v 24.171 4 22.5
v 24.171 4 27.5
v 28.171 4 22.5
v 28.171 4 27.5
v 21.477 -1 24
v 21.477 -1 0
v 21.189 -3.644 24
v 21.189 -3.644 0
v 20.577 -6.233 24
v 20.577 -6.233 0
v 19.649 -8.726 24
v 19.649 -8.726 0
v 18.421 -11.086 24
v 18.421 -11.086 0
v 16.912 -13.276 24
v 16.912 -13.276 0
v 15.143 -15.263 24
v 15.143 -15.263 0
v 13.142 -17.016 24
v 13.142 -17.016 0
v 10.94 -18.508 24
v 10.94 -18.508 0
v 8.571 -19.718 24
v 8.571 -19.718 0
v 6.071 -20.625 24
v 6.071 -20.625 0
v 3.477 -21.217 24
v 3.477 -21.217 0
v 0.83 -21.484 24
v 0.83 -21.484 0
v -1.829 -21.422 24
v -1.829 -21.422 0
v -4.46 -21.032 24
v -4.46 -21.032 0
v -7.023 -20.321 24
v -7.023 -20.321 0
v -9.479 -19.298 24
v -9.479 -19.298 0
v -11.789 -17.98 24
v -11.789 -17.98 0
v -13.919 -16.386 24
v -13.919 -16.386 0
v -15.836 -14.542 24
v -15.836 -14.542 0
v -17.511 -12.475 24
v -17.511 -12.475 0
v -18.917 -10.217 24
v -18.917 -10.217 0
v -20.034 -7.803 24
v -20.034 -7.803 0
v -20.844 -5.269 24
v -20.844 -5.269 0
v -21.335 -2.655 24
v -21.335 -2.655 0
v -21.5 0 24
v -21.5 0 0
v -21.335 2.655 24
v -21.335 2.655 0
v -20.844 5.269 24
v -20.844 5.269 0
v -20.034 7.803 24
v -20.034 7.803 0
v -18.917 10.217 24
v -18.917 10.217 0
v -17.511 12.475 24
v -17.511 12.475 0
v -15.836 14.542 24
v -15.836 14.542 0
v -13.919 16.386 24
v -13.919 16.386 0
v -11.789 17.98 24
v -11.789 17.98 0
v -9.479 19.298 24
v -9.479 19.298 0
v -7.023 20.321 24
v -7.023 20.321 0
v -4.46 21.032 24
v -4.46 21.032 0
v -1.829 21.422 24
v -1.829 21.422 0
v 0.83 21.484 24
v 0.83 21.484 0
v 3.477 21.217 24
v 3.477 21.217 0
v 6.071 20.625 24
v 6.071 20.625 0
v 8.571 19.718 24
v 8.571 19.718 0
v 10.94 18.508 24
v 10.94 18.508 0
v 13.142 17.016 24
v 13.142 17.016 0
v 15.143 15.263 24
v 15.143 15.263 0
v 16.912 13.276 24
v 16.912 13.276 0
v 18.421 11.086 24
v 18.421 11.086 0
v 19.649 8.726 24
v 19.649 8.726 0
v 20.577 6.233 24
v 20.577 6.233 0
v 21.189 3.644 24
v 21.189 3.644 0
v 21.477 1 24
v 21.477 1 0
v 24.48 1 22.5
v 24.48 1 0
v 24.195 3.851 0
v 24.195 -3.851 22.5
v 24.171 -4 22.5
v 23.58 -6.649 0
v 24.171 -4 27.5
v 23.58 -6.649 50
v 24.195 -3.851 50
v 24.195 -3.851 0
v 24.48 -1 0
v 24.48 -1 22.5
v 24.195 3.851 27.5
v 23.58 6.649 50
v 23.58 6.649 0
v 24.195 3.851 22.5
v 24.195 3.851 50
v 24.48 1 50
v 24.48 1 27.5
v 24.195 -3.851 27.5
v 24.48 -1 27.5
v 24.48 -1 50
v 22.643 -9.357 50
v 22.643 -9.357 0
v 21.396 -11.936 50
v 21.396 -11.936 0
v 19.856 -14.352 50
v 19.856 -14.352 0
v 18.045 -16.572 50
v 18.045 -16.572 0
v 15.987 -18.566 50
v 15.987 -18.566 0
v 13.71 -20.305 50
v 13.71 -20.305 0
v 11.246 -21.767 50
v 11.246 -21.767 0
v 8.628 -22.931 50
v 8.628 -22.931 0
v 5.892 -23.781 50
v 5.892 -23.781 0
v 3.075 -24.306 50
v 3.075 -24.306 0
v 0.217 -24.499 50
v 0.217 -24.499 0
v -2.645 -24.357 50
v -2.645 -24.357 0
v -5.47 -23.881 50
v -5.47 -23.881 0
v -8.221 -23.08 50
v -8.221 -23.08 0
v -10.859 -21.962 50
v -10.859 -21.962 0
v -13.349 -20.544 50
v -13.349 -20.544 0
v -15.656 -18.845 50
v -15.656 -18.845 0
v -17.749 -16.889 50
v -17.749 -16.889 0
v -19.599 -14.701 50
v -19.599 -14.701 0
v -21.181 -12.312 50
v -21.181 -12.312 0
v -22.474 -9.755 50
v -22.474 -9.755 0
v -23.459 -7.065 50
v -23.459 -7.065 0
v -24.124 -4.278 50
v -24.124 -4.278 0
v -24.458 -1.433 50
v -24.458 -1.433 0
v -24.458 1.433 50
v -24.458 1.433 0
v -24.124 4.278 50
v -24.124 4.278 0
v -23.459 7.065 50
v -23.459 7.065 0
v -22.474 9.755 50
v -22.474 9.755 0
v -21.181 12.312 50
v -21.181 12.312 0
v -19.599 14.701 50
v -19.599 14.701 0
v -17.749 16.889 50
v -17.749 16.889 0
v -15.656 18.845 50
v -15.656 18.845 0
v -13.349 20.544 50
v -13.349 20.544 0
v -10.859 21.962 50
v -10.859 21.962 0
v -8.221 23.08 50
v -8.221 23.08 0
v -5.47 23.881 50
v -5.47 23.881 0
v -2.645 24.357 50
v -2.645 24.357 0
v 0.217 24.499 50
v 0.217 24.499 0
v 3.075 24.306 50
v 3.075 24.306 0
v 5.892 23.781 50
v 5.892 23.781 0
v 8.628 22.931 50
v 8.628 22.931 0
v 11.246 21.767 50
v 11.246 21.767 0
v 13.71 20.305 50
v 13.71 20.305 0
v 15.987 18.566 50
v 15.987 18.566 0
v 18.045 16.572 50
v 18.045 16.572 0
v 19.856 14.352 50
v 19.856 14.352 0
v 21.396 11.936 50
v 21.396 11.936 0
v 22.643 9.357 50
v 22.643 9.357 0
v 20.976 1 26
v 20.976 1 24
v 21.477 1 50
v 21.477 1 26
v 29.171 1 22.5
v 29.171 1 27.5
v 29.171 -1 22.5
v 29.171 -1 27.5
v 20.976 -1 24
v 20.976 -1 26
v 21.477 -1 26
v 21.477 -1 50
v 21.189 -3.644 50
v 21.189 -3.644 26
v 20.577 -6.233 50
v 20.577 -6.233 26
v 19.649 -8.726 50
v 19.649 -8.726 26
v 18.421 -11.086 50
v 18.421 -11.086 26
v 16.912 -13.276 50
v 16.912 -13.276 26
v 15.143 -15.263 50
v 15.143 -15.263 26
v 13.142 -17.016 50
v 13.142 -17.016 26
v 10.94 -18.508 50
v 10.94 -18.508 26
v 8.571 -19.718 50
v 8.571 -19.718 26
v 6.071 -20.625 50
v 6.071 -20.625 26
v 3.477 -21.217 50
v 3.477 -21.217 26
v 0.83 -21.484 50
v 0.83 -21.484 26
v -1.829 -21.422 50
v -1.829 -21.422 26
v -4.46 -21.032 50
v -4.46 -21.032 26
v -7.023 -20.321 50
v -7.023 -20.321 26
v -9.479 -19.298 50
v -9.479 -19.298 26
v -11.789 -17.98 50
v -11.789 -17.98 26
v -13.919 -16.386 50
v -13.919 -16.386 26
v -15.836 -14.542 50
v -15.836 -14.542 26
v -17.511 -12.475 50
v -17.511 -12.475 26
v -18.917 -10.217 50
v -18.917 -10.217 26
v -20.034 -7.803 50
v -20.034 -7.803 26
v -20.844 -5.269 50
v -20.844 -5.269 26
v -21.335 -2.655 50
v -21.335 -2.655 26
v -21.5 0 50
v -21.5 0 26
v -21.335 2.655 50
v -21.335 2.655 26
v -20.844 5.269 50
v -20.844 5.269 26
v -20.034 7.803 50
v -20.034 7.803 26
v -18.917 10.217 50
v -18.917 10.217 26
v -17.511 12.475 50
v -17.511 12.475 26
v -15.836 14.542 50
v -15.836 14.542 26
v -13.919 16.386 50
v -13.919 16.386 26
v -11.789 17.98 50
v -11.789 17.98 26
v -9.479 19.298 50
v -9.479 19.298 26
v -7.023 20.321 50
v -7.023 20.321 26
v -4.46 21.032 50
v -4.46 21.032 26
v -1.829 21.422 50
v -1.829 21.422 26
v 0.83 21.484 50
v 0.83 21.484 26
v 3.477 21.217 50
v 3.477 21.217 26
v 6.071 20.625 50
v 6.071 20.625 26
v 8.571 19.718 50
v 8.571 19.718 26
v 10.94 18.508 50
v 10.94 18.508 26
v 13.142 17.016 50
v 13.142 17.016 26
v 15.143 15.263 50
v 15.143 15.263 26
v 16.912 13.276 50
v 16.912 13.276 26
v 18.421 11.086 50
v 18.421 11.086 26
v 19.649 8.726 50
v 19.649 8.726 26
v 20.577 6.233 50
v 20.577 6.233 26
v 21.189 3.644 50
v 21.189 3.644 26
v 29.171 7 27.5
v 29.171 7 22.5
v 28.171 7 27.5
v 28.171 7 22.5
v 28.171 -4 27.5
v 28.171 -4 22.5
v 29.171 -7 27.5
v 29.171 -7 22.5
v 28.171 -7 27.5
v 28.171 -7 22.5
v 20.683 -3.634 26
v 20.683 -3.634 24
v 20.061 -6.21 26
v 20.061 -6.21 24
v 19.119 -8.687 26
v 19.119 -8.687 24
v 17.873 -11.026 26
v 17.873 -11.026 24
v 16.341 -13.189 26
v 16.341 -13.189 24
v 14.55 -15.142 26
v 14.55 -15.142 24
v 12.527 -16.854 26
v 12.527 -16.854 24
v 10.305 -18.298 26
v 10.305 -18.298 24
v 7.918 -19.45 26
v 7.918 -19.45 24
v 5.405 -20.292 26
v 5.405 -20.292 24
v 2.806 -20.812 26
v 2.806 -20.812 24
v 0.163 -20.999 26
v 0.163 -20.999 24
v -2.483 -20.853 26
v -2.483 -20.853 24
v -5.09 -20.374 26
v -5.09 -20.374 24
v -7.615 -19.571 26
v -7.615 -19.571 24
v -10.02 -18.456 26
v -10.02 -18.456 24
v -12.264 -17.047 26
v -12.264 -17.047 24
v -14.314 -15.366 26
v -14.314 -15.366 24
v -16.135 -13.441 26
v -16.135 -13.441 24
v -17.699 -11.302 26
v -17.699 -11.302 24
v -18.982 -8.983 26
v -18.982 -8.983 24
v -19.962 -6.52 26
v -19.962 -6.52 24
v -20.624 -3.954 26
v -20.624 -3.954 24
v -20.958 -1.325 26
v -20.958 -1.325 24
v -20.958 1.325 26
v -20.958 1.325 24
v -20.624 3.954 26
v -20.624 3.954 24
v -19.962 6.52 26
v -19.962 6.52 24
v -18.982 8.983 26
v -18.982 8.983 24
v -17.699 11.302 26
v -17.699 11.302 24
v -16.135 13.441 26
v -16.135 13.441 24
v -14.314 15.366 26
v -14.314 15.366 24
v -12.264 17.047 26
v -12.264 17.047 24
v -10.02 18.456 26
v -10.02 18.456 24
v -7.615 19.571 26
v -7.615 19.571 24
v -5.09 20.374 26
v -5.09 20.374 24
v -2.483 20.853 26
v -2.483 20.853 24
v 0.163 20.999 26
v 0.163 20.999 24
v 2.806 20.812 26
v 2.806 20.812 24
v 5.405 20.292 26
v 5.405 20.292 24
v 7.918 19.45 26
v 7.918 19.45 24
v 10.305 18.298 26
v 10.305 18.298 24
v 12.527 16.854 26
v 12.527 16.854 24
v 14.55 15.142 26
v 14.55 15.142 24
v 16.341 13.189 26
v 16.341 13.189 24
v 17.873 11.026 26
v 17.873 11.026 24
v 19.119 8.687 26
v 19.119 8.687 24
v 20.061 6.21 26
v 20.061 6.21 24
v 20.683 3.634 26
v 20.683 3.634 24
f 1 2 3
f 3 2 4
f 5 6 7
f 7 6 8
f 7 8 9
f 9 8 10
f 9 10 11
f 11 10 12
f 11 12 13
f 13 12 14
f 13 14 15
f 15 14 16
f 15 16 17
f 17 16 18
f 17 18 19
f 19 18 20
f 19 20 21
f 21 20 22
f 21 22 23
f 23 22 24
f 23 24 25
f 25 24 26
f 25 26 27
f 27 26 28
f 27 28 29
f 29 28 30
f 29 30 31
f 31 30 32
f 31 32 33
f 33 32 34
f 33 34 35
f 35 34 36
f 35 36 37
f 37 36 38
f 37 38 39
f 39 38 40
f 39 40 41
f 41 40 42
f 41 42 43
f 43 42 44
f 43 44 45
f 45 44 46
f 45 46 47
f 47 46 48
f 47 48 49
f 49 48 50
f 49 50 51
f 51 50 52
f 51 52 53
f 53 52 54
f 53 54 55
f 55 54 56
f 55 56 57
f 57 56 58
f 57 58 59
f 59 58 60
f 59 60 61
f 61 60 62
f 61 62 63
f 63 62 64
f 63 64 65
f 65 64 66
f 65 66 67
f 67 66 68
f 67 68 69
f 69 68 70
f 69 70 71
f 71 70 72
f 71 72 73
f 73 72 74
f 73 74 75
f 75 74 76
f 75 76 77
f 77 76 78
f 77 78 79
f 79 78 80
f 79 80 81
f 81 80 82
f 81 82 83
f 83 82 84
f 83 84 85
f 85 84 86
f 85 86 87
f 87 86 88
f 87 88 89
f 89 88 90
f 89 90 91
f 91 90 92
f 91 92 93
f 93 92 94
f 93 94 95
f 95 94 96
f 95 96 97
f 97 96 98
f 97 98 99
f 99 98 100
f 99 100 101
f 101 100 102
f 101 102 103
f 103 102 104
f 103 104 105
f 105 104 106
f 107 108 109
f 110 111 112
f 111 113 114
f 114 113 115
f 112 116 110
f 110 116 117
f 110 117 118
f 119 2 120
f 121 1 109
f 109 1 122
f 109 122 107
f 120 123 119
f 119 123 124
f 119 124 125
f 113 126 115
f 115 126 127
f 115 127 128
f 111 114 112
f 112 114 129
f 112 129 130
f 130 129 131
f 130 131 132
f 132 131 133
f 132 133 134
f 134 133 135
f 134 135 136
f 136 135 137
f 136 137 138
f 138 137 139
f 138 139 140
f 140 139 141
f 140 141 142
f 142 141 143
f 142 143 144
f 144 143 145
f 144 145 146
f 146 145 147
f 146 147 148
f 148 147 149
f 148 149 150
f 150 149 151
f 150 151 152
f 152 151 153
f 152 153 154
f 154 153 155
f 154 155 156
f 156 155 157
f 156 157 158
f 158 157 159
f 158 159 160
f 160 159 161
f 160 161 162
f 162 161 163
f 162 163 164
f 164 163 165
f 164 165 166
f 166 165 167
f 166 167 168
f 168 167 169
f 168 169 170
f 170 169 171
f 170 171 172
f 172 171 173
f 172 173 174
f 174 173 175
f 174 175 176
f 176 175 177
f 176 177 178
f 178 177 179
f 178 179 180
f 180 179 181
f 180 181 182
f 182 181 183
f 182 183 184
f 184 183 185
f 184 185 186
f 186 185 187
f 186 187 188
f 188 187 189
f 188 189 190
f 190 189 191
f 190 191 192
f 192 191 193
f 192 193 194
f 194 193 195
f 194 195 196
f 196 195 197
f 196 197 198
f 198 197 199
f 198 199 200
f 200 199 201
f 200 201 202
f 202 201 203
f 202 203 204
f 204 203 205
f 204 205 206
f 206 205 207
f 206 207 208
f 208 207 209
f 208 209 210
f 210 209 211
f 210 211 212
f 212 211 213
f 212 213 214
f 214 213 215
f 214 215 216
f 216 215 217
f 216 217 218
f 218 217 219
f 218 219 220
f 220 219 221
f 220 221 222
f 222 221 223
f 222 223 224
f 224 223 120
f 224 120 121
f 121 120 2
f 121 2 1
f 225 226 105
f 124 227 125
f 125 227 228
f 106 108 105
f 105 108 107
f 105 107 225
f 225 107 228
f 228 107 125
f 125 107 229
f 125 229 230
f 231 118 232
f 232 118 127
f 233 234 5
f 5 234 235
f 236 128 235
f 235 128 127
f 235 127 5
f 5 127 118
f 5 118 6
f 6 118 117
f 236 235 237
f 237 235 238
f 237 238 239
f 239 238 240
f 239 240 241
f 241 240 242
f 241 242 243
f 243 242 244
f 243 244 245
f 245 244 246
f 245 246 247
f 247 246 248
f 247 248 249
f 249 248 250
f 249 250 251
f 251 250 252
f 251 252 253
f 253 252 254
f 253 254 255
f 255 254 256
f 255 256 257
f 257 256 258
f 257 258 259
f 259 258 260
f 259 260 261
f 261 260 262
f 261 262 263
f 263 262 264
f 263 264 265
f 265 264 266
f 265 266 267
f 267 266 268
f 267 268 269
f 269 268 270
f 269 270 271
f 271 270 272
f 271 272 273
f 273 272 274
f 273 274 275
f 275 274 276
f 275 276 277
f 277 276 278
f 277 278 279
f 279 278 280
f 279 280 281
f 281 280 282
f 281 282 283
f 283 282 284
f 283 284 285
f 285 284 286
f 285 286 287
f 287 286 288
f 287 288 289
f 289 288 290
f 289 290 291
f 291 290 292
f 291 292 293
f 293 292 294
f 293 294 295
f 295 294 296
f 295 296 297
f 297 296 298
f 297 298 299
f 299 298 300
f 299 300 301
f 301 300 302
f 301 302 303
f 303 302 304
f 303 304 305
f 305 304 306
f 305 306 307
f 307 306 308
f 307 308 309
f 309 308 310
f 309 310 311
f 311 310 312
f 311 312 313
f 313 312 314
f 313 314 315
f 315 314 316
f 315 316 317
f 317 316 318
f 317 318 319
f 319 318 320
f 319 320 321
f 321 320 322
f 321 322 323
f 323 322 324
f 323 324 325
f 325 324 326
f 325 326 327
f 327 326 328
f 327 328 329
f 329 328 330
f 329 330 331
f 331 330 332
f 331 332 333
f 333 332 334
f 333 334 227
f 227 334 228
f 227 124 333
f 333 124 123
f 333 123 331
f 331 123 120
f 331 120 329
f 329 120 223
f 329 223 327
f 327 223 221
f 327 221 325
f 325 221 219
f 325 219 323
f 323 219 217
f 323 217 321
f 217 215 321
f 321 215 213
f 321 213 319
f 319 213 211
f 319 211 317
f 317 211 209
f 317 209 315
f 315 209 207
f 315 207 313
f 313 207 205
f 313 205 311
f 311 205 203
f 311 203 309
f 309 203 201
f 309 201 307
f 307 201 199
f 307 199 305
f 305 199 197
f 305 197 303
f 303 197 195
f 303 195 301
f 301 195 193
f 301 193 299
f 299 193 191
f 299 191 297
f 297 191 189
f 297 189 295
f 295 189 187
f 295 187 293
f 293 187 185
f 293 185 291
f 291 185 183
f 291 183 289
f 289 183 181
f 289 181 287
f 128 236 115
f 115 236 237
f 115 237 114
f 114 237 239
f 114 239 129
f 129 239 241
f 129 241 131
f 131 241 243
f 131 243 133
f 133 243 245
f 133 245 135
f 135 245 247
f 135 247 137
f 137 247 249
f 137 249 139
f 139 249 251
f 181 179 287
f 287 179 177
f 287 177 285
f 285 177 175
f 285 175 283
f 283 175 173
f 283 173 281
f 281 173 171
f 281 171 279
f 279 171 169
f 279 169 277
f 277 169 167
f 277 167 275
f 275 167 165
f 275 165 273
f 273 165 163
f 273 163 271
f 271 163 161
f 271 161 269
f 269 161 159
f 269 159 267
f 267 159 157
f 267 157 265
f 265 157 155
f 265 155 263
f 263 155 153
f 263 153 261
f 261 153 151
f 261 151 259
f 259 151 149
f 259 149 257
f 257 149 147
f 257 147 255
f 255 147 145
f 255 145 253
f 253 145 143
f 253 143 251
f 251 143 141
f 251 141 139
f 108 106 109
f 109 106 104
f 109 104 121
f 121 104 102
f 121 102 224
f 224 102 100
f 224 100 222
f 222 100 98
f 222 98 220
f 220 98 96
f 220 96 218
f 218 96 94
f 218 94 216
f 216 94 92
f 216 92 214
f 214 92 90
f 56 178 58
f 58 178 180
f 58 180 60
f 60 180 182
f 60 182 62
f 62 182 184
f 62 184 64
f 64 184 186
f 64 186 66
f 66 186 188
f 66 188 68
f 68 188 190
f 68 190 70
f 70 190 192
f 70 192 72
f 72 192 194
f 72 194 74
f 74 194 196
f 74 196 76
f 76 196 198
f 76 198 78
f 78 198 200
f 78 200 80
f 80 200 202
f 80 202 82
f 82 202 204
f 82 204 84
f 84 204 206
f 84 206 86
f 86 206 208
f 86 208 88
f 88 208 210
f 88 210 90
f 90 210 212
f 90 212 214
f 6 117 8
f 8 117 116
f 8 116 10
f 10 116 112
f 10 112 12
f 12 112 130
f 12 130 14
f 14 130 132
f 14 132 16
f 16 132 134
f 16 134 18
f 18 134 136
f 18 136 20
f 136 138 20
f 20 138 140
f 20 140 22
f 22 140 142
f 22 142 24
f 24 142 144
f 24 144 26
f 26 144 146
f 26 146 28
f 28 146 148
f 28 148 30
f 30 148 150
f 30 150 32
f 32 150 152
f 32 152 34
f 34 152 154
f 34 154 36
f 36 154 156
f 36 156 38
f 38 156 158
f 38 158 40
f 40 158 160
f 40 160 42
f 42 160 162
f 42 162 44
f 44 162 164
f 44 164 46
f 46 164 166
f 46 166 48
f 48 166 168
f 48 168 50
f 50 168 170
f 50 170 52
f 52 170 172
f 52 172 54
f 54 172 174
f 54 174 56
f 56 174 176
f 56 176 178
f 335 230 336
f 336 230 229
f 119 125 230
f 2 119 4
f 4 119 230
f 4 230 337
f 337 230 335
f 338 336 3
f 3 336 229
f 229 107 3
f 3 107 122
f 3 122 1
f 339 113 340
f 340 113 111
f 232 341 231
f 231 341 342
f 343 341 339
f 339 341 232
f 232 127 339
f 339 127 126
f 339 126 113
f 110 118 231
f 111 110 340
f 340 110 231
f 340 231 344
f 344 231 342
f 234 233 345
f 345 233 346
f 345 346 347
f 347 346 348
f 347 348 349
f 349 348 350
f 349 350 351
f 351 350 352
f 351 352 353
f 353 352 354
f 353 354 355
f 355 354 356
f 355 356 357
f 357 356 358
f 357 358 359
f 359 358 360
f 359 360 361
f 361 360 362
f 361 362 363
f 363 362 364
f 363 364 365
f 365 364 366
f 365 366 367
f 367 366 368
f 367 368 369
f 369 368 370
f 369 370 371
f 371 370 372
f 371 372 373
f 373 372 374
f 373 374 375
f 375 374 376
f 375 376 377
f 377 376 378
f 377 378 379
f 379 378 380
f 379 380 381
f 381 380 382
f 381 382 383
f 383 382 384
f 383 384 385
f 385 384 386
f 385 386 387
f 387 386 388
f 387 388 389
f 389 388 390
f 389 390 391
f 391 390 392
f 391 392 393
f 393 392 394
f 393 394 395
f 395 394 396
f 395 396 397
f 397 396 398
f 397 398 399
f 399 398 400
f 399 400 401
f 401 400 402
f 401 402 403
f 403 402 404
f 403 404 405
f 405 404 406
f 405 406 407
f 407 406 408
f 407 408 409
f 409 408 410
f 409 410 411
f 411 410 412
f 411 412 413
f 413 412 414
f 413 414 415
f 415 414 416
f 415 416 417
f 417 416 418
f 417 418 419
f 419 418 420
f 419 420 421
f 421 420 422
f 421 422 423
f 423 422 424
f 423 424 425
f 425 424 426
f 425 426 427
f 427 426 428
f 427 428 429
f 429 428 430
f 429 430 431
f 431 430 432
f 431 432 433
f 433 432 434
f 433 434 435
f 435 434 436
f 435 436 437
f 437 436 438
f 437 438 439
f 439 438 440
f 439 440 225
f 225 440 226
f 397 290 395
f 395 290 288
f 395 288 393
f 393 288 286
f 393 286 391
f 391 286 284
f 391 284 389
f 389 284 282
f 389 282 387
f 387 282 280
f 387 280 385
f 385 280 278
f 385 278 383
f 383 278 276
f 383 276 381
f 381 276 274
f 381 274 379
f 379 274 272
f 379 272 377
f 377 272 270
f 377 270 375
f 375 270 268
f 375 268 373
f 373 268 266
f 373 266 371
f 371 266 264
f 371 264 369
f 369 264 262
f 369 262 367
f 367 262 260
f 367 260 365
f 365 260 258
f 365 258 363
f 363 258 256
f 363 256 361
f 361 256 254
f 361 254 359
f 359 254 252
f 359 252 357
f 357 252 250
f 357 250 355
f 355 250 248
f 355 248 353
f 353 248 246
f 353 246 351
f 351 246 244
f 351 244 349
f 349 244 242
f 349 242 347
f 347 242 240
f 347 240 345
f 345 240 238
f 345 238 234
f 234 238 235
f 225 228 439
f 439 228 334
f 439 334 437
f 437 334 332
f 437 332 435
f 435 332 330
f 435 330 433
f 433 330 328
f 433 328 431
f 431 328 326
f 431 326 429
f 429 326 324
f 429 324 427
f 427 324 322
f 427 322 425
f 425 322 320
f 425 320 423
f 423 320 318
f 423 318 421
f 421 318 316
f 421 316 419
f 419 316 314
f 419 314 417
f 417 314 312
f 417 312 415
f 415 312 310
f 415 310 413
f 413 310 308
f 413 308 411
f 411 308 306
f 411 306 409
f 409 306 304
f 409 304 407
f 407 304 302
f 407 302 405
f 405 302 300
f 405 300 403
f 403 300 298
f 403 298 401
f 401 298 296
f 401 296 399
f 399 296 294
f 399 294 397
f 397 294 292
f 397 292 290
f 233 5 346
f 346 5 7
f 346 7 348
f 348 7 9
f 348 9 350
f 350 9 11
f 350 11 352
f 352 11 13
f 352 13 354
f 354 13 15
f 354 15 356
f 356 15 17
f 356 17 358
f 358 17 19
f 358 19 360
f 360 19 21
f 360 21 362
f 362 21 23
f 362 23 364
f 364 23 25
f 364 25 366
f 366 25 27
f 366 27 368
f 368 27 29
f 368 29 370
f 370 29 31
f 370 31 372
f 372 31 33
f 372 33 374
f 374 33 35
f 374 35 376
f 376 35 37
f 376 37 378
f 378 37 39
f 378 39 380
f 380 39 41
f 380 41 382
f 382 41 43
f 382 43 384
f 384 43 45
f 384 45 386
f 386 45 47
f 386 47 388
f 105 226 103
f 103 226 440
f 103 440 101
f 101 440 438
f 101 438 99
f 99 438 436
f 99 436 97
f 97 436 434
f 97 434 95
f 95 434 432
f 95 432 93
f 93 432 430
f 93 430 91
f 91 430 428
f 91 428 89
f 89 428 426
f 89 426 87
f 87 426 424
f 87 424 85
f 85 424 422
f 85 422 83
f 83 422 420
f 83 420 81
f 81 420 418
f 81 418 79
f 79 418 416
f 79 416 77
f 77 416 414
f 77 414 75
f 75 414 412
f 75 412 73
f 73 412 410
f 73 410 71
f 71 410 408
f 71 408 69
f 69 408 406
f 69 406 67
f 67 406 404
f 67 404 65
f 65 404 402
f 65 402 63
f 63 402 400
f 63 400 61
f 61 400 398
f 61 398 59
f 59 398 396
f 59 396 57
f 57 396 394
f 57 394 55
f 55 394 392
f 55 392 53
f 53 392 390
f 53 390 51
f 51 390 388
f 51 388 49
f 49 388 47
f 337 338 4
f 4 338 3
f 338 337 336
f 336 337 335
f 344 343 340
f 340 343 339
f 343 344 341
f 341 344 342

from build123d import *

# Parameters (mm, degrees)
BOSS_EXTRUDE1_DEPTH = 50
BOSS_EXTRUDE2_DEPTH = 2.5
BOSS_EXTRUDE3_DEPTH = 1
SKETCH4_W           = 1
SKETCH4_H           = 5
BOSS_EXTRUDE4_DEPTH = 3


with BuildPart() as part:
    # Sketch1 → Boss-Extrude1 (new body)
    with BuildSketch(Plane.XY):
        with BuildLine():
            Line((21.476731595, 1), (24.47958333, 1))
            ThreePointArc((24.47958333, 1), (-24.5, 0), (24.47958333, -1))
            Line((24.47958333, -1), (21.476731595, -1))
            ThreePointArc((21.476731595, -1), (-21.5, 0), (21.476731595, 1))
        make_face()
    extrude(amount=BOSS_EXTRUDE1_DEPTH)

    # Sketch2 → Boss-Extrude2 (add, symmetric)
    with BuildSketch(Plane.XY.offset(25)):
        with BuildLine():
            Line((24.47958333, 1), (29.171263931, 1))
            Line((29.171263931, 1), (29.171263931, 4))
            Line((29.171263931, 4), (24.171263931, 4))
            ThreePointArc((24.171263931, 4), (24.37162766, 2.504748533), (24.47958333, 1))
        make_face()
        with BuildLine():
            Line((29.171263931, -4), (24.171263931, -4))
            ThreePointArc((24.171263931, -4), (24.37162766, -2.504748533), (24.47958333, -1))
            Line((24.47958333, -1), (29.171263931, -1))
            Line((29.171263931, -1), (29.171263931, -4))
        make_face()
    extrude(amount=BOSS_EXTRUDE2_DEPTH, both=True)

    # Sketch3 → Boss-Extrude3 (add, symmetric)
    with BuildSketch(Plane.XY.offset(25)):
        with BuildLine():
            Line((20.976176963, 1), (21.476731595, 1))
            ThreePointArc((21.476731595, 1), (-21.5, 0), (21.476731595, -1))
            Line((21.476731595, -1), (20.976176963, -1))
            ThreePointArc((20.976176963, -1), (-21, 0), (20.976176963, 1))
        make_face()
    extrude(amount=BOSS_EXTRUDE3_DEPTH, both=True)

    # Sketch4 → Boss-Extrude4 (add)
    with BuildSketch(Plane(origin=(0, 4, 0), x_dir=(1, 0, 0), z_dir=(0, 1, 0))):
        with Locations((28.671263931, -25)):
            Rectangle(SKETCH4_W, SKETCH4_H)
    boss_extrude4 = extrude(amount=BOSS_EXTRUDE4_DEPTH)

    # Mirror1: Boss-Extrude4 across plane
    add(boss_extrude4.mirror(Plane.ZX))


solid = part.part
